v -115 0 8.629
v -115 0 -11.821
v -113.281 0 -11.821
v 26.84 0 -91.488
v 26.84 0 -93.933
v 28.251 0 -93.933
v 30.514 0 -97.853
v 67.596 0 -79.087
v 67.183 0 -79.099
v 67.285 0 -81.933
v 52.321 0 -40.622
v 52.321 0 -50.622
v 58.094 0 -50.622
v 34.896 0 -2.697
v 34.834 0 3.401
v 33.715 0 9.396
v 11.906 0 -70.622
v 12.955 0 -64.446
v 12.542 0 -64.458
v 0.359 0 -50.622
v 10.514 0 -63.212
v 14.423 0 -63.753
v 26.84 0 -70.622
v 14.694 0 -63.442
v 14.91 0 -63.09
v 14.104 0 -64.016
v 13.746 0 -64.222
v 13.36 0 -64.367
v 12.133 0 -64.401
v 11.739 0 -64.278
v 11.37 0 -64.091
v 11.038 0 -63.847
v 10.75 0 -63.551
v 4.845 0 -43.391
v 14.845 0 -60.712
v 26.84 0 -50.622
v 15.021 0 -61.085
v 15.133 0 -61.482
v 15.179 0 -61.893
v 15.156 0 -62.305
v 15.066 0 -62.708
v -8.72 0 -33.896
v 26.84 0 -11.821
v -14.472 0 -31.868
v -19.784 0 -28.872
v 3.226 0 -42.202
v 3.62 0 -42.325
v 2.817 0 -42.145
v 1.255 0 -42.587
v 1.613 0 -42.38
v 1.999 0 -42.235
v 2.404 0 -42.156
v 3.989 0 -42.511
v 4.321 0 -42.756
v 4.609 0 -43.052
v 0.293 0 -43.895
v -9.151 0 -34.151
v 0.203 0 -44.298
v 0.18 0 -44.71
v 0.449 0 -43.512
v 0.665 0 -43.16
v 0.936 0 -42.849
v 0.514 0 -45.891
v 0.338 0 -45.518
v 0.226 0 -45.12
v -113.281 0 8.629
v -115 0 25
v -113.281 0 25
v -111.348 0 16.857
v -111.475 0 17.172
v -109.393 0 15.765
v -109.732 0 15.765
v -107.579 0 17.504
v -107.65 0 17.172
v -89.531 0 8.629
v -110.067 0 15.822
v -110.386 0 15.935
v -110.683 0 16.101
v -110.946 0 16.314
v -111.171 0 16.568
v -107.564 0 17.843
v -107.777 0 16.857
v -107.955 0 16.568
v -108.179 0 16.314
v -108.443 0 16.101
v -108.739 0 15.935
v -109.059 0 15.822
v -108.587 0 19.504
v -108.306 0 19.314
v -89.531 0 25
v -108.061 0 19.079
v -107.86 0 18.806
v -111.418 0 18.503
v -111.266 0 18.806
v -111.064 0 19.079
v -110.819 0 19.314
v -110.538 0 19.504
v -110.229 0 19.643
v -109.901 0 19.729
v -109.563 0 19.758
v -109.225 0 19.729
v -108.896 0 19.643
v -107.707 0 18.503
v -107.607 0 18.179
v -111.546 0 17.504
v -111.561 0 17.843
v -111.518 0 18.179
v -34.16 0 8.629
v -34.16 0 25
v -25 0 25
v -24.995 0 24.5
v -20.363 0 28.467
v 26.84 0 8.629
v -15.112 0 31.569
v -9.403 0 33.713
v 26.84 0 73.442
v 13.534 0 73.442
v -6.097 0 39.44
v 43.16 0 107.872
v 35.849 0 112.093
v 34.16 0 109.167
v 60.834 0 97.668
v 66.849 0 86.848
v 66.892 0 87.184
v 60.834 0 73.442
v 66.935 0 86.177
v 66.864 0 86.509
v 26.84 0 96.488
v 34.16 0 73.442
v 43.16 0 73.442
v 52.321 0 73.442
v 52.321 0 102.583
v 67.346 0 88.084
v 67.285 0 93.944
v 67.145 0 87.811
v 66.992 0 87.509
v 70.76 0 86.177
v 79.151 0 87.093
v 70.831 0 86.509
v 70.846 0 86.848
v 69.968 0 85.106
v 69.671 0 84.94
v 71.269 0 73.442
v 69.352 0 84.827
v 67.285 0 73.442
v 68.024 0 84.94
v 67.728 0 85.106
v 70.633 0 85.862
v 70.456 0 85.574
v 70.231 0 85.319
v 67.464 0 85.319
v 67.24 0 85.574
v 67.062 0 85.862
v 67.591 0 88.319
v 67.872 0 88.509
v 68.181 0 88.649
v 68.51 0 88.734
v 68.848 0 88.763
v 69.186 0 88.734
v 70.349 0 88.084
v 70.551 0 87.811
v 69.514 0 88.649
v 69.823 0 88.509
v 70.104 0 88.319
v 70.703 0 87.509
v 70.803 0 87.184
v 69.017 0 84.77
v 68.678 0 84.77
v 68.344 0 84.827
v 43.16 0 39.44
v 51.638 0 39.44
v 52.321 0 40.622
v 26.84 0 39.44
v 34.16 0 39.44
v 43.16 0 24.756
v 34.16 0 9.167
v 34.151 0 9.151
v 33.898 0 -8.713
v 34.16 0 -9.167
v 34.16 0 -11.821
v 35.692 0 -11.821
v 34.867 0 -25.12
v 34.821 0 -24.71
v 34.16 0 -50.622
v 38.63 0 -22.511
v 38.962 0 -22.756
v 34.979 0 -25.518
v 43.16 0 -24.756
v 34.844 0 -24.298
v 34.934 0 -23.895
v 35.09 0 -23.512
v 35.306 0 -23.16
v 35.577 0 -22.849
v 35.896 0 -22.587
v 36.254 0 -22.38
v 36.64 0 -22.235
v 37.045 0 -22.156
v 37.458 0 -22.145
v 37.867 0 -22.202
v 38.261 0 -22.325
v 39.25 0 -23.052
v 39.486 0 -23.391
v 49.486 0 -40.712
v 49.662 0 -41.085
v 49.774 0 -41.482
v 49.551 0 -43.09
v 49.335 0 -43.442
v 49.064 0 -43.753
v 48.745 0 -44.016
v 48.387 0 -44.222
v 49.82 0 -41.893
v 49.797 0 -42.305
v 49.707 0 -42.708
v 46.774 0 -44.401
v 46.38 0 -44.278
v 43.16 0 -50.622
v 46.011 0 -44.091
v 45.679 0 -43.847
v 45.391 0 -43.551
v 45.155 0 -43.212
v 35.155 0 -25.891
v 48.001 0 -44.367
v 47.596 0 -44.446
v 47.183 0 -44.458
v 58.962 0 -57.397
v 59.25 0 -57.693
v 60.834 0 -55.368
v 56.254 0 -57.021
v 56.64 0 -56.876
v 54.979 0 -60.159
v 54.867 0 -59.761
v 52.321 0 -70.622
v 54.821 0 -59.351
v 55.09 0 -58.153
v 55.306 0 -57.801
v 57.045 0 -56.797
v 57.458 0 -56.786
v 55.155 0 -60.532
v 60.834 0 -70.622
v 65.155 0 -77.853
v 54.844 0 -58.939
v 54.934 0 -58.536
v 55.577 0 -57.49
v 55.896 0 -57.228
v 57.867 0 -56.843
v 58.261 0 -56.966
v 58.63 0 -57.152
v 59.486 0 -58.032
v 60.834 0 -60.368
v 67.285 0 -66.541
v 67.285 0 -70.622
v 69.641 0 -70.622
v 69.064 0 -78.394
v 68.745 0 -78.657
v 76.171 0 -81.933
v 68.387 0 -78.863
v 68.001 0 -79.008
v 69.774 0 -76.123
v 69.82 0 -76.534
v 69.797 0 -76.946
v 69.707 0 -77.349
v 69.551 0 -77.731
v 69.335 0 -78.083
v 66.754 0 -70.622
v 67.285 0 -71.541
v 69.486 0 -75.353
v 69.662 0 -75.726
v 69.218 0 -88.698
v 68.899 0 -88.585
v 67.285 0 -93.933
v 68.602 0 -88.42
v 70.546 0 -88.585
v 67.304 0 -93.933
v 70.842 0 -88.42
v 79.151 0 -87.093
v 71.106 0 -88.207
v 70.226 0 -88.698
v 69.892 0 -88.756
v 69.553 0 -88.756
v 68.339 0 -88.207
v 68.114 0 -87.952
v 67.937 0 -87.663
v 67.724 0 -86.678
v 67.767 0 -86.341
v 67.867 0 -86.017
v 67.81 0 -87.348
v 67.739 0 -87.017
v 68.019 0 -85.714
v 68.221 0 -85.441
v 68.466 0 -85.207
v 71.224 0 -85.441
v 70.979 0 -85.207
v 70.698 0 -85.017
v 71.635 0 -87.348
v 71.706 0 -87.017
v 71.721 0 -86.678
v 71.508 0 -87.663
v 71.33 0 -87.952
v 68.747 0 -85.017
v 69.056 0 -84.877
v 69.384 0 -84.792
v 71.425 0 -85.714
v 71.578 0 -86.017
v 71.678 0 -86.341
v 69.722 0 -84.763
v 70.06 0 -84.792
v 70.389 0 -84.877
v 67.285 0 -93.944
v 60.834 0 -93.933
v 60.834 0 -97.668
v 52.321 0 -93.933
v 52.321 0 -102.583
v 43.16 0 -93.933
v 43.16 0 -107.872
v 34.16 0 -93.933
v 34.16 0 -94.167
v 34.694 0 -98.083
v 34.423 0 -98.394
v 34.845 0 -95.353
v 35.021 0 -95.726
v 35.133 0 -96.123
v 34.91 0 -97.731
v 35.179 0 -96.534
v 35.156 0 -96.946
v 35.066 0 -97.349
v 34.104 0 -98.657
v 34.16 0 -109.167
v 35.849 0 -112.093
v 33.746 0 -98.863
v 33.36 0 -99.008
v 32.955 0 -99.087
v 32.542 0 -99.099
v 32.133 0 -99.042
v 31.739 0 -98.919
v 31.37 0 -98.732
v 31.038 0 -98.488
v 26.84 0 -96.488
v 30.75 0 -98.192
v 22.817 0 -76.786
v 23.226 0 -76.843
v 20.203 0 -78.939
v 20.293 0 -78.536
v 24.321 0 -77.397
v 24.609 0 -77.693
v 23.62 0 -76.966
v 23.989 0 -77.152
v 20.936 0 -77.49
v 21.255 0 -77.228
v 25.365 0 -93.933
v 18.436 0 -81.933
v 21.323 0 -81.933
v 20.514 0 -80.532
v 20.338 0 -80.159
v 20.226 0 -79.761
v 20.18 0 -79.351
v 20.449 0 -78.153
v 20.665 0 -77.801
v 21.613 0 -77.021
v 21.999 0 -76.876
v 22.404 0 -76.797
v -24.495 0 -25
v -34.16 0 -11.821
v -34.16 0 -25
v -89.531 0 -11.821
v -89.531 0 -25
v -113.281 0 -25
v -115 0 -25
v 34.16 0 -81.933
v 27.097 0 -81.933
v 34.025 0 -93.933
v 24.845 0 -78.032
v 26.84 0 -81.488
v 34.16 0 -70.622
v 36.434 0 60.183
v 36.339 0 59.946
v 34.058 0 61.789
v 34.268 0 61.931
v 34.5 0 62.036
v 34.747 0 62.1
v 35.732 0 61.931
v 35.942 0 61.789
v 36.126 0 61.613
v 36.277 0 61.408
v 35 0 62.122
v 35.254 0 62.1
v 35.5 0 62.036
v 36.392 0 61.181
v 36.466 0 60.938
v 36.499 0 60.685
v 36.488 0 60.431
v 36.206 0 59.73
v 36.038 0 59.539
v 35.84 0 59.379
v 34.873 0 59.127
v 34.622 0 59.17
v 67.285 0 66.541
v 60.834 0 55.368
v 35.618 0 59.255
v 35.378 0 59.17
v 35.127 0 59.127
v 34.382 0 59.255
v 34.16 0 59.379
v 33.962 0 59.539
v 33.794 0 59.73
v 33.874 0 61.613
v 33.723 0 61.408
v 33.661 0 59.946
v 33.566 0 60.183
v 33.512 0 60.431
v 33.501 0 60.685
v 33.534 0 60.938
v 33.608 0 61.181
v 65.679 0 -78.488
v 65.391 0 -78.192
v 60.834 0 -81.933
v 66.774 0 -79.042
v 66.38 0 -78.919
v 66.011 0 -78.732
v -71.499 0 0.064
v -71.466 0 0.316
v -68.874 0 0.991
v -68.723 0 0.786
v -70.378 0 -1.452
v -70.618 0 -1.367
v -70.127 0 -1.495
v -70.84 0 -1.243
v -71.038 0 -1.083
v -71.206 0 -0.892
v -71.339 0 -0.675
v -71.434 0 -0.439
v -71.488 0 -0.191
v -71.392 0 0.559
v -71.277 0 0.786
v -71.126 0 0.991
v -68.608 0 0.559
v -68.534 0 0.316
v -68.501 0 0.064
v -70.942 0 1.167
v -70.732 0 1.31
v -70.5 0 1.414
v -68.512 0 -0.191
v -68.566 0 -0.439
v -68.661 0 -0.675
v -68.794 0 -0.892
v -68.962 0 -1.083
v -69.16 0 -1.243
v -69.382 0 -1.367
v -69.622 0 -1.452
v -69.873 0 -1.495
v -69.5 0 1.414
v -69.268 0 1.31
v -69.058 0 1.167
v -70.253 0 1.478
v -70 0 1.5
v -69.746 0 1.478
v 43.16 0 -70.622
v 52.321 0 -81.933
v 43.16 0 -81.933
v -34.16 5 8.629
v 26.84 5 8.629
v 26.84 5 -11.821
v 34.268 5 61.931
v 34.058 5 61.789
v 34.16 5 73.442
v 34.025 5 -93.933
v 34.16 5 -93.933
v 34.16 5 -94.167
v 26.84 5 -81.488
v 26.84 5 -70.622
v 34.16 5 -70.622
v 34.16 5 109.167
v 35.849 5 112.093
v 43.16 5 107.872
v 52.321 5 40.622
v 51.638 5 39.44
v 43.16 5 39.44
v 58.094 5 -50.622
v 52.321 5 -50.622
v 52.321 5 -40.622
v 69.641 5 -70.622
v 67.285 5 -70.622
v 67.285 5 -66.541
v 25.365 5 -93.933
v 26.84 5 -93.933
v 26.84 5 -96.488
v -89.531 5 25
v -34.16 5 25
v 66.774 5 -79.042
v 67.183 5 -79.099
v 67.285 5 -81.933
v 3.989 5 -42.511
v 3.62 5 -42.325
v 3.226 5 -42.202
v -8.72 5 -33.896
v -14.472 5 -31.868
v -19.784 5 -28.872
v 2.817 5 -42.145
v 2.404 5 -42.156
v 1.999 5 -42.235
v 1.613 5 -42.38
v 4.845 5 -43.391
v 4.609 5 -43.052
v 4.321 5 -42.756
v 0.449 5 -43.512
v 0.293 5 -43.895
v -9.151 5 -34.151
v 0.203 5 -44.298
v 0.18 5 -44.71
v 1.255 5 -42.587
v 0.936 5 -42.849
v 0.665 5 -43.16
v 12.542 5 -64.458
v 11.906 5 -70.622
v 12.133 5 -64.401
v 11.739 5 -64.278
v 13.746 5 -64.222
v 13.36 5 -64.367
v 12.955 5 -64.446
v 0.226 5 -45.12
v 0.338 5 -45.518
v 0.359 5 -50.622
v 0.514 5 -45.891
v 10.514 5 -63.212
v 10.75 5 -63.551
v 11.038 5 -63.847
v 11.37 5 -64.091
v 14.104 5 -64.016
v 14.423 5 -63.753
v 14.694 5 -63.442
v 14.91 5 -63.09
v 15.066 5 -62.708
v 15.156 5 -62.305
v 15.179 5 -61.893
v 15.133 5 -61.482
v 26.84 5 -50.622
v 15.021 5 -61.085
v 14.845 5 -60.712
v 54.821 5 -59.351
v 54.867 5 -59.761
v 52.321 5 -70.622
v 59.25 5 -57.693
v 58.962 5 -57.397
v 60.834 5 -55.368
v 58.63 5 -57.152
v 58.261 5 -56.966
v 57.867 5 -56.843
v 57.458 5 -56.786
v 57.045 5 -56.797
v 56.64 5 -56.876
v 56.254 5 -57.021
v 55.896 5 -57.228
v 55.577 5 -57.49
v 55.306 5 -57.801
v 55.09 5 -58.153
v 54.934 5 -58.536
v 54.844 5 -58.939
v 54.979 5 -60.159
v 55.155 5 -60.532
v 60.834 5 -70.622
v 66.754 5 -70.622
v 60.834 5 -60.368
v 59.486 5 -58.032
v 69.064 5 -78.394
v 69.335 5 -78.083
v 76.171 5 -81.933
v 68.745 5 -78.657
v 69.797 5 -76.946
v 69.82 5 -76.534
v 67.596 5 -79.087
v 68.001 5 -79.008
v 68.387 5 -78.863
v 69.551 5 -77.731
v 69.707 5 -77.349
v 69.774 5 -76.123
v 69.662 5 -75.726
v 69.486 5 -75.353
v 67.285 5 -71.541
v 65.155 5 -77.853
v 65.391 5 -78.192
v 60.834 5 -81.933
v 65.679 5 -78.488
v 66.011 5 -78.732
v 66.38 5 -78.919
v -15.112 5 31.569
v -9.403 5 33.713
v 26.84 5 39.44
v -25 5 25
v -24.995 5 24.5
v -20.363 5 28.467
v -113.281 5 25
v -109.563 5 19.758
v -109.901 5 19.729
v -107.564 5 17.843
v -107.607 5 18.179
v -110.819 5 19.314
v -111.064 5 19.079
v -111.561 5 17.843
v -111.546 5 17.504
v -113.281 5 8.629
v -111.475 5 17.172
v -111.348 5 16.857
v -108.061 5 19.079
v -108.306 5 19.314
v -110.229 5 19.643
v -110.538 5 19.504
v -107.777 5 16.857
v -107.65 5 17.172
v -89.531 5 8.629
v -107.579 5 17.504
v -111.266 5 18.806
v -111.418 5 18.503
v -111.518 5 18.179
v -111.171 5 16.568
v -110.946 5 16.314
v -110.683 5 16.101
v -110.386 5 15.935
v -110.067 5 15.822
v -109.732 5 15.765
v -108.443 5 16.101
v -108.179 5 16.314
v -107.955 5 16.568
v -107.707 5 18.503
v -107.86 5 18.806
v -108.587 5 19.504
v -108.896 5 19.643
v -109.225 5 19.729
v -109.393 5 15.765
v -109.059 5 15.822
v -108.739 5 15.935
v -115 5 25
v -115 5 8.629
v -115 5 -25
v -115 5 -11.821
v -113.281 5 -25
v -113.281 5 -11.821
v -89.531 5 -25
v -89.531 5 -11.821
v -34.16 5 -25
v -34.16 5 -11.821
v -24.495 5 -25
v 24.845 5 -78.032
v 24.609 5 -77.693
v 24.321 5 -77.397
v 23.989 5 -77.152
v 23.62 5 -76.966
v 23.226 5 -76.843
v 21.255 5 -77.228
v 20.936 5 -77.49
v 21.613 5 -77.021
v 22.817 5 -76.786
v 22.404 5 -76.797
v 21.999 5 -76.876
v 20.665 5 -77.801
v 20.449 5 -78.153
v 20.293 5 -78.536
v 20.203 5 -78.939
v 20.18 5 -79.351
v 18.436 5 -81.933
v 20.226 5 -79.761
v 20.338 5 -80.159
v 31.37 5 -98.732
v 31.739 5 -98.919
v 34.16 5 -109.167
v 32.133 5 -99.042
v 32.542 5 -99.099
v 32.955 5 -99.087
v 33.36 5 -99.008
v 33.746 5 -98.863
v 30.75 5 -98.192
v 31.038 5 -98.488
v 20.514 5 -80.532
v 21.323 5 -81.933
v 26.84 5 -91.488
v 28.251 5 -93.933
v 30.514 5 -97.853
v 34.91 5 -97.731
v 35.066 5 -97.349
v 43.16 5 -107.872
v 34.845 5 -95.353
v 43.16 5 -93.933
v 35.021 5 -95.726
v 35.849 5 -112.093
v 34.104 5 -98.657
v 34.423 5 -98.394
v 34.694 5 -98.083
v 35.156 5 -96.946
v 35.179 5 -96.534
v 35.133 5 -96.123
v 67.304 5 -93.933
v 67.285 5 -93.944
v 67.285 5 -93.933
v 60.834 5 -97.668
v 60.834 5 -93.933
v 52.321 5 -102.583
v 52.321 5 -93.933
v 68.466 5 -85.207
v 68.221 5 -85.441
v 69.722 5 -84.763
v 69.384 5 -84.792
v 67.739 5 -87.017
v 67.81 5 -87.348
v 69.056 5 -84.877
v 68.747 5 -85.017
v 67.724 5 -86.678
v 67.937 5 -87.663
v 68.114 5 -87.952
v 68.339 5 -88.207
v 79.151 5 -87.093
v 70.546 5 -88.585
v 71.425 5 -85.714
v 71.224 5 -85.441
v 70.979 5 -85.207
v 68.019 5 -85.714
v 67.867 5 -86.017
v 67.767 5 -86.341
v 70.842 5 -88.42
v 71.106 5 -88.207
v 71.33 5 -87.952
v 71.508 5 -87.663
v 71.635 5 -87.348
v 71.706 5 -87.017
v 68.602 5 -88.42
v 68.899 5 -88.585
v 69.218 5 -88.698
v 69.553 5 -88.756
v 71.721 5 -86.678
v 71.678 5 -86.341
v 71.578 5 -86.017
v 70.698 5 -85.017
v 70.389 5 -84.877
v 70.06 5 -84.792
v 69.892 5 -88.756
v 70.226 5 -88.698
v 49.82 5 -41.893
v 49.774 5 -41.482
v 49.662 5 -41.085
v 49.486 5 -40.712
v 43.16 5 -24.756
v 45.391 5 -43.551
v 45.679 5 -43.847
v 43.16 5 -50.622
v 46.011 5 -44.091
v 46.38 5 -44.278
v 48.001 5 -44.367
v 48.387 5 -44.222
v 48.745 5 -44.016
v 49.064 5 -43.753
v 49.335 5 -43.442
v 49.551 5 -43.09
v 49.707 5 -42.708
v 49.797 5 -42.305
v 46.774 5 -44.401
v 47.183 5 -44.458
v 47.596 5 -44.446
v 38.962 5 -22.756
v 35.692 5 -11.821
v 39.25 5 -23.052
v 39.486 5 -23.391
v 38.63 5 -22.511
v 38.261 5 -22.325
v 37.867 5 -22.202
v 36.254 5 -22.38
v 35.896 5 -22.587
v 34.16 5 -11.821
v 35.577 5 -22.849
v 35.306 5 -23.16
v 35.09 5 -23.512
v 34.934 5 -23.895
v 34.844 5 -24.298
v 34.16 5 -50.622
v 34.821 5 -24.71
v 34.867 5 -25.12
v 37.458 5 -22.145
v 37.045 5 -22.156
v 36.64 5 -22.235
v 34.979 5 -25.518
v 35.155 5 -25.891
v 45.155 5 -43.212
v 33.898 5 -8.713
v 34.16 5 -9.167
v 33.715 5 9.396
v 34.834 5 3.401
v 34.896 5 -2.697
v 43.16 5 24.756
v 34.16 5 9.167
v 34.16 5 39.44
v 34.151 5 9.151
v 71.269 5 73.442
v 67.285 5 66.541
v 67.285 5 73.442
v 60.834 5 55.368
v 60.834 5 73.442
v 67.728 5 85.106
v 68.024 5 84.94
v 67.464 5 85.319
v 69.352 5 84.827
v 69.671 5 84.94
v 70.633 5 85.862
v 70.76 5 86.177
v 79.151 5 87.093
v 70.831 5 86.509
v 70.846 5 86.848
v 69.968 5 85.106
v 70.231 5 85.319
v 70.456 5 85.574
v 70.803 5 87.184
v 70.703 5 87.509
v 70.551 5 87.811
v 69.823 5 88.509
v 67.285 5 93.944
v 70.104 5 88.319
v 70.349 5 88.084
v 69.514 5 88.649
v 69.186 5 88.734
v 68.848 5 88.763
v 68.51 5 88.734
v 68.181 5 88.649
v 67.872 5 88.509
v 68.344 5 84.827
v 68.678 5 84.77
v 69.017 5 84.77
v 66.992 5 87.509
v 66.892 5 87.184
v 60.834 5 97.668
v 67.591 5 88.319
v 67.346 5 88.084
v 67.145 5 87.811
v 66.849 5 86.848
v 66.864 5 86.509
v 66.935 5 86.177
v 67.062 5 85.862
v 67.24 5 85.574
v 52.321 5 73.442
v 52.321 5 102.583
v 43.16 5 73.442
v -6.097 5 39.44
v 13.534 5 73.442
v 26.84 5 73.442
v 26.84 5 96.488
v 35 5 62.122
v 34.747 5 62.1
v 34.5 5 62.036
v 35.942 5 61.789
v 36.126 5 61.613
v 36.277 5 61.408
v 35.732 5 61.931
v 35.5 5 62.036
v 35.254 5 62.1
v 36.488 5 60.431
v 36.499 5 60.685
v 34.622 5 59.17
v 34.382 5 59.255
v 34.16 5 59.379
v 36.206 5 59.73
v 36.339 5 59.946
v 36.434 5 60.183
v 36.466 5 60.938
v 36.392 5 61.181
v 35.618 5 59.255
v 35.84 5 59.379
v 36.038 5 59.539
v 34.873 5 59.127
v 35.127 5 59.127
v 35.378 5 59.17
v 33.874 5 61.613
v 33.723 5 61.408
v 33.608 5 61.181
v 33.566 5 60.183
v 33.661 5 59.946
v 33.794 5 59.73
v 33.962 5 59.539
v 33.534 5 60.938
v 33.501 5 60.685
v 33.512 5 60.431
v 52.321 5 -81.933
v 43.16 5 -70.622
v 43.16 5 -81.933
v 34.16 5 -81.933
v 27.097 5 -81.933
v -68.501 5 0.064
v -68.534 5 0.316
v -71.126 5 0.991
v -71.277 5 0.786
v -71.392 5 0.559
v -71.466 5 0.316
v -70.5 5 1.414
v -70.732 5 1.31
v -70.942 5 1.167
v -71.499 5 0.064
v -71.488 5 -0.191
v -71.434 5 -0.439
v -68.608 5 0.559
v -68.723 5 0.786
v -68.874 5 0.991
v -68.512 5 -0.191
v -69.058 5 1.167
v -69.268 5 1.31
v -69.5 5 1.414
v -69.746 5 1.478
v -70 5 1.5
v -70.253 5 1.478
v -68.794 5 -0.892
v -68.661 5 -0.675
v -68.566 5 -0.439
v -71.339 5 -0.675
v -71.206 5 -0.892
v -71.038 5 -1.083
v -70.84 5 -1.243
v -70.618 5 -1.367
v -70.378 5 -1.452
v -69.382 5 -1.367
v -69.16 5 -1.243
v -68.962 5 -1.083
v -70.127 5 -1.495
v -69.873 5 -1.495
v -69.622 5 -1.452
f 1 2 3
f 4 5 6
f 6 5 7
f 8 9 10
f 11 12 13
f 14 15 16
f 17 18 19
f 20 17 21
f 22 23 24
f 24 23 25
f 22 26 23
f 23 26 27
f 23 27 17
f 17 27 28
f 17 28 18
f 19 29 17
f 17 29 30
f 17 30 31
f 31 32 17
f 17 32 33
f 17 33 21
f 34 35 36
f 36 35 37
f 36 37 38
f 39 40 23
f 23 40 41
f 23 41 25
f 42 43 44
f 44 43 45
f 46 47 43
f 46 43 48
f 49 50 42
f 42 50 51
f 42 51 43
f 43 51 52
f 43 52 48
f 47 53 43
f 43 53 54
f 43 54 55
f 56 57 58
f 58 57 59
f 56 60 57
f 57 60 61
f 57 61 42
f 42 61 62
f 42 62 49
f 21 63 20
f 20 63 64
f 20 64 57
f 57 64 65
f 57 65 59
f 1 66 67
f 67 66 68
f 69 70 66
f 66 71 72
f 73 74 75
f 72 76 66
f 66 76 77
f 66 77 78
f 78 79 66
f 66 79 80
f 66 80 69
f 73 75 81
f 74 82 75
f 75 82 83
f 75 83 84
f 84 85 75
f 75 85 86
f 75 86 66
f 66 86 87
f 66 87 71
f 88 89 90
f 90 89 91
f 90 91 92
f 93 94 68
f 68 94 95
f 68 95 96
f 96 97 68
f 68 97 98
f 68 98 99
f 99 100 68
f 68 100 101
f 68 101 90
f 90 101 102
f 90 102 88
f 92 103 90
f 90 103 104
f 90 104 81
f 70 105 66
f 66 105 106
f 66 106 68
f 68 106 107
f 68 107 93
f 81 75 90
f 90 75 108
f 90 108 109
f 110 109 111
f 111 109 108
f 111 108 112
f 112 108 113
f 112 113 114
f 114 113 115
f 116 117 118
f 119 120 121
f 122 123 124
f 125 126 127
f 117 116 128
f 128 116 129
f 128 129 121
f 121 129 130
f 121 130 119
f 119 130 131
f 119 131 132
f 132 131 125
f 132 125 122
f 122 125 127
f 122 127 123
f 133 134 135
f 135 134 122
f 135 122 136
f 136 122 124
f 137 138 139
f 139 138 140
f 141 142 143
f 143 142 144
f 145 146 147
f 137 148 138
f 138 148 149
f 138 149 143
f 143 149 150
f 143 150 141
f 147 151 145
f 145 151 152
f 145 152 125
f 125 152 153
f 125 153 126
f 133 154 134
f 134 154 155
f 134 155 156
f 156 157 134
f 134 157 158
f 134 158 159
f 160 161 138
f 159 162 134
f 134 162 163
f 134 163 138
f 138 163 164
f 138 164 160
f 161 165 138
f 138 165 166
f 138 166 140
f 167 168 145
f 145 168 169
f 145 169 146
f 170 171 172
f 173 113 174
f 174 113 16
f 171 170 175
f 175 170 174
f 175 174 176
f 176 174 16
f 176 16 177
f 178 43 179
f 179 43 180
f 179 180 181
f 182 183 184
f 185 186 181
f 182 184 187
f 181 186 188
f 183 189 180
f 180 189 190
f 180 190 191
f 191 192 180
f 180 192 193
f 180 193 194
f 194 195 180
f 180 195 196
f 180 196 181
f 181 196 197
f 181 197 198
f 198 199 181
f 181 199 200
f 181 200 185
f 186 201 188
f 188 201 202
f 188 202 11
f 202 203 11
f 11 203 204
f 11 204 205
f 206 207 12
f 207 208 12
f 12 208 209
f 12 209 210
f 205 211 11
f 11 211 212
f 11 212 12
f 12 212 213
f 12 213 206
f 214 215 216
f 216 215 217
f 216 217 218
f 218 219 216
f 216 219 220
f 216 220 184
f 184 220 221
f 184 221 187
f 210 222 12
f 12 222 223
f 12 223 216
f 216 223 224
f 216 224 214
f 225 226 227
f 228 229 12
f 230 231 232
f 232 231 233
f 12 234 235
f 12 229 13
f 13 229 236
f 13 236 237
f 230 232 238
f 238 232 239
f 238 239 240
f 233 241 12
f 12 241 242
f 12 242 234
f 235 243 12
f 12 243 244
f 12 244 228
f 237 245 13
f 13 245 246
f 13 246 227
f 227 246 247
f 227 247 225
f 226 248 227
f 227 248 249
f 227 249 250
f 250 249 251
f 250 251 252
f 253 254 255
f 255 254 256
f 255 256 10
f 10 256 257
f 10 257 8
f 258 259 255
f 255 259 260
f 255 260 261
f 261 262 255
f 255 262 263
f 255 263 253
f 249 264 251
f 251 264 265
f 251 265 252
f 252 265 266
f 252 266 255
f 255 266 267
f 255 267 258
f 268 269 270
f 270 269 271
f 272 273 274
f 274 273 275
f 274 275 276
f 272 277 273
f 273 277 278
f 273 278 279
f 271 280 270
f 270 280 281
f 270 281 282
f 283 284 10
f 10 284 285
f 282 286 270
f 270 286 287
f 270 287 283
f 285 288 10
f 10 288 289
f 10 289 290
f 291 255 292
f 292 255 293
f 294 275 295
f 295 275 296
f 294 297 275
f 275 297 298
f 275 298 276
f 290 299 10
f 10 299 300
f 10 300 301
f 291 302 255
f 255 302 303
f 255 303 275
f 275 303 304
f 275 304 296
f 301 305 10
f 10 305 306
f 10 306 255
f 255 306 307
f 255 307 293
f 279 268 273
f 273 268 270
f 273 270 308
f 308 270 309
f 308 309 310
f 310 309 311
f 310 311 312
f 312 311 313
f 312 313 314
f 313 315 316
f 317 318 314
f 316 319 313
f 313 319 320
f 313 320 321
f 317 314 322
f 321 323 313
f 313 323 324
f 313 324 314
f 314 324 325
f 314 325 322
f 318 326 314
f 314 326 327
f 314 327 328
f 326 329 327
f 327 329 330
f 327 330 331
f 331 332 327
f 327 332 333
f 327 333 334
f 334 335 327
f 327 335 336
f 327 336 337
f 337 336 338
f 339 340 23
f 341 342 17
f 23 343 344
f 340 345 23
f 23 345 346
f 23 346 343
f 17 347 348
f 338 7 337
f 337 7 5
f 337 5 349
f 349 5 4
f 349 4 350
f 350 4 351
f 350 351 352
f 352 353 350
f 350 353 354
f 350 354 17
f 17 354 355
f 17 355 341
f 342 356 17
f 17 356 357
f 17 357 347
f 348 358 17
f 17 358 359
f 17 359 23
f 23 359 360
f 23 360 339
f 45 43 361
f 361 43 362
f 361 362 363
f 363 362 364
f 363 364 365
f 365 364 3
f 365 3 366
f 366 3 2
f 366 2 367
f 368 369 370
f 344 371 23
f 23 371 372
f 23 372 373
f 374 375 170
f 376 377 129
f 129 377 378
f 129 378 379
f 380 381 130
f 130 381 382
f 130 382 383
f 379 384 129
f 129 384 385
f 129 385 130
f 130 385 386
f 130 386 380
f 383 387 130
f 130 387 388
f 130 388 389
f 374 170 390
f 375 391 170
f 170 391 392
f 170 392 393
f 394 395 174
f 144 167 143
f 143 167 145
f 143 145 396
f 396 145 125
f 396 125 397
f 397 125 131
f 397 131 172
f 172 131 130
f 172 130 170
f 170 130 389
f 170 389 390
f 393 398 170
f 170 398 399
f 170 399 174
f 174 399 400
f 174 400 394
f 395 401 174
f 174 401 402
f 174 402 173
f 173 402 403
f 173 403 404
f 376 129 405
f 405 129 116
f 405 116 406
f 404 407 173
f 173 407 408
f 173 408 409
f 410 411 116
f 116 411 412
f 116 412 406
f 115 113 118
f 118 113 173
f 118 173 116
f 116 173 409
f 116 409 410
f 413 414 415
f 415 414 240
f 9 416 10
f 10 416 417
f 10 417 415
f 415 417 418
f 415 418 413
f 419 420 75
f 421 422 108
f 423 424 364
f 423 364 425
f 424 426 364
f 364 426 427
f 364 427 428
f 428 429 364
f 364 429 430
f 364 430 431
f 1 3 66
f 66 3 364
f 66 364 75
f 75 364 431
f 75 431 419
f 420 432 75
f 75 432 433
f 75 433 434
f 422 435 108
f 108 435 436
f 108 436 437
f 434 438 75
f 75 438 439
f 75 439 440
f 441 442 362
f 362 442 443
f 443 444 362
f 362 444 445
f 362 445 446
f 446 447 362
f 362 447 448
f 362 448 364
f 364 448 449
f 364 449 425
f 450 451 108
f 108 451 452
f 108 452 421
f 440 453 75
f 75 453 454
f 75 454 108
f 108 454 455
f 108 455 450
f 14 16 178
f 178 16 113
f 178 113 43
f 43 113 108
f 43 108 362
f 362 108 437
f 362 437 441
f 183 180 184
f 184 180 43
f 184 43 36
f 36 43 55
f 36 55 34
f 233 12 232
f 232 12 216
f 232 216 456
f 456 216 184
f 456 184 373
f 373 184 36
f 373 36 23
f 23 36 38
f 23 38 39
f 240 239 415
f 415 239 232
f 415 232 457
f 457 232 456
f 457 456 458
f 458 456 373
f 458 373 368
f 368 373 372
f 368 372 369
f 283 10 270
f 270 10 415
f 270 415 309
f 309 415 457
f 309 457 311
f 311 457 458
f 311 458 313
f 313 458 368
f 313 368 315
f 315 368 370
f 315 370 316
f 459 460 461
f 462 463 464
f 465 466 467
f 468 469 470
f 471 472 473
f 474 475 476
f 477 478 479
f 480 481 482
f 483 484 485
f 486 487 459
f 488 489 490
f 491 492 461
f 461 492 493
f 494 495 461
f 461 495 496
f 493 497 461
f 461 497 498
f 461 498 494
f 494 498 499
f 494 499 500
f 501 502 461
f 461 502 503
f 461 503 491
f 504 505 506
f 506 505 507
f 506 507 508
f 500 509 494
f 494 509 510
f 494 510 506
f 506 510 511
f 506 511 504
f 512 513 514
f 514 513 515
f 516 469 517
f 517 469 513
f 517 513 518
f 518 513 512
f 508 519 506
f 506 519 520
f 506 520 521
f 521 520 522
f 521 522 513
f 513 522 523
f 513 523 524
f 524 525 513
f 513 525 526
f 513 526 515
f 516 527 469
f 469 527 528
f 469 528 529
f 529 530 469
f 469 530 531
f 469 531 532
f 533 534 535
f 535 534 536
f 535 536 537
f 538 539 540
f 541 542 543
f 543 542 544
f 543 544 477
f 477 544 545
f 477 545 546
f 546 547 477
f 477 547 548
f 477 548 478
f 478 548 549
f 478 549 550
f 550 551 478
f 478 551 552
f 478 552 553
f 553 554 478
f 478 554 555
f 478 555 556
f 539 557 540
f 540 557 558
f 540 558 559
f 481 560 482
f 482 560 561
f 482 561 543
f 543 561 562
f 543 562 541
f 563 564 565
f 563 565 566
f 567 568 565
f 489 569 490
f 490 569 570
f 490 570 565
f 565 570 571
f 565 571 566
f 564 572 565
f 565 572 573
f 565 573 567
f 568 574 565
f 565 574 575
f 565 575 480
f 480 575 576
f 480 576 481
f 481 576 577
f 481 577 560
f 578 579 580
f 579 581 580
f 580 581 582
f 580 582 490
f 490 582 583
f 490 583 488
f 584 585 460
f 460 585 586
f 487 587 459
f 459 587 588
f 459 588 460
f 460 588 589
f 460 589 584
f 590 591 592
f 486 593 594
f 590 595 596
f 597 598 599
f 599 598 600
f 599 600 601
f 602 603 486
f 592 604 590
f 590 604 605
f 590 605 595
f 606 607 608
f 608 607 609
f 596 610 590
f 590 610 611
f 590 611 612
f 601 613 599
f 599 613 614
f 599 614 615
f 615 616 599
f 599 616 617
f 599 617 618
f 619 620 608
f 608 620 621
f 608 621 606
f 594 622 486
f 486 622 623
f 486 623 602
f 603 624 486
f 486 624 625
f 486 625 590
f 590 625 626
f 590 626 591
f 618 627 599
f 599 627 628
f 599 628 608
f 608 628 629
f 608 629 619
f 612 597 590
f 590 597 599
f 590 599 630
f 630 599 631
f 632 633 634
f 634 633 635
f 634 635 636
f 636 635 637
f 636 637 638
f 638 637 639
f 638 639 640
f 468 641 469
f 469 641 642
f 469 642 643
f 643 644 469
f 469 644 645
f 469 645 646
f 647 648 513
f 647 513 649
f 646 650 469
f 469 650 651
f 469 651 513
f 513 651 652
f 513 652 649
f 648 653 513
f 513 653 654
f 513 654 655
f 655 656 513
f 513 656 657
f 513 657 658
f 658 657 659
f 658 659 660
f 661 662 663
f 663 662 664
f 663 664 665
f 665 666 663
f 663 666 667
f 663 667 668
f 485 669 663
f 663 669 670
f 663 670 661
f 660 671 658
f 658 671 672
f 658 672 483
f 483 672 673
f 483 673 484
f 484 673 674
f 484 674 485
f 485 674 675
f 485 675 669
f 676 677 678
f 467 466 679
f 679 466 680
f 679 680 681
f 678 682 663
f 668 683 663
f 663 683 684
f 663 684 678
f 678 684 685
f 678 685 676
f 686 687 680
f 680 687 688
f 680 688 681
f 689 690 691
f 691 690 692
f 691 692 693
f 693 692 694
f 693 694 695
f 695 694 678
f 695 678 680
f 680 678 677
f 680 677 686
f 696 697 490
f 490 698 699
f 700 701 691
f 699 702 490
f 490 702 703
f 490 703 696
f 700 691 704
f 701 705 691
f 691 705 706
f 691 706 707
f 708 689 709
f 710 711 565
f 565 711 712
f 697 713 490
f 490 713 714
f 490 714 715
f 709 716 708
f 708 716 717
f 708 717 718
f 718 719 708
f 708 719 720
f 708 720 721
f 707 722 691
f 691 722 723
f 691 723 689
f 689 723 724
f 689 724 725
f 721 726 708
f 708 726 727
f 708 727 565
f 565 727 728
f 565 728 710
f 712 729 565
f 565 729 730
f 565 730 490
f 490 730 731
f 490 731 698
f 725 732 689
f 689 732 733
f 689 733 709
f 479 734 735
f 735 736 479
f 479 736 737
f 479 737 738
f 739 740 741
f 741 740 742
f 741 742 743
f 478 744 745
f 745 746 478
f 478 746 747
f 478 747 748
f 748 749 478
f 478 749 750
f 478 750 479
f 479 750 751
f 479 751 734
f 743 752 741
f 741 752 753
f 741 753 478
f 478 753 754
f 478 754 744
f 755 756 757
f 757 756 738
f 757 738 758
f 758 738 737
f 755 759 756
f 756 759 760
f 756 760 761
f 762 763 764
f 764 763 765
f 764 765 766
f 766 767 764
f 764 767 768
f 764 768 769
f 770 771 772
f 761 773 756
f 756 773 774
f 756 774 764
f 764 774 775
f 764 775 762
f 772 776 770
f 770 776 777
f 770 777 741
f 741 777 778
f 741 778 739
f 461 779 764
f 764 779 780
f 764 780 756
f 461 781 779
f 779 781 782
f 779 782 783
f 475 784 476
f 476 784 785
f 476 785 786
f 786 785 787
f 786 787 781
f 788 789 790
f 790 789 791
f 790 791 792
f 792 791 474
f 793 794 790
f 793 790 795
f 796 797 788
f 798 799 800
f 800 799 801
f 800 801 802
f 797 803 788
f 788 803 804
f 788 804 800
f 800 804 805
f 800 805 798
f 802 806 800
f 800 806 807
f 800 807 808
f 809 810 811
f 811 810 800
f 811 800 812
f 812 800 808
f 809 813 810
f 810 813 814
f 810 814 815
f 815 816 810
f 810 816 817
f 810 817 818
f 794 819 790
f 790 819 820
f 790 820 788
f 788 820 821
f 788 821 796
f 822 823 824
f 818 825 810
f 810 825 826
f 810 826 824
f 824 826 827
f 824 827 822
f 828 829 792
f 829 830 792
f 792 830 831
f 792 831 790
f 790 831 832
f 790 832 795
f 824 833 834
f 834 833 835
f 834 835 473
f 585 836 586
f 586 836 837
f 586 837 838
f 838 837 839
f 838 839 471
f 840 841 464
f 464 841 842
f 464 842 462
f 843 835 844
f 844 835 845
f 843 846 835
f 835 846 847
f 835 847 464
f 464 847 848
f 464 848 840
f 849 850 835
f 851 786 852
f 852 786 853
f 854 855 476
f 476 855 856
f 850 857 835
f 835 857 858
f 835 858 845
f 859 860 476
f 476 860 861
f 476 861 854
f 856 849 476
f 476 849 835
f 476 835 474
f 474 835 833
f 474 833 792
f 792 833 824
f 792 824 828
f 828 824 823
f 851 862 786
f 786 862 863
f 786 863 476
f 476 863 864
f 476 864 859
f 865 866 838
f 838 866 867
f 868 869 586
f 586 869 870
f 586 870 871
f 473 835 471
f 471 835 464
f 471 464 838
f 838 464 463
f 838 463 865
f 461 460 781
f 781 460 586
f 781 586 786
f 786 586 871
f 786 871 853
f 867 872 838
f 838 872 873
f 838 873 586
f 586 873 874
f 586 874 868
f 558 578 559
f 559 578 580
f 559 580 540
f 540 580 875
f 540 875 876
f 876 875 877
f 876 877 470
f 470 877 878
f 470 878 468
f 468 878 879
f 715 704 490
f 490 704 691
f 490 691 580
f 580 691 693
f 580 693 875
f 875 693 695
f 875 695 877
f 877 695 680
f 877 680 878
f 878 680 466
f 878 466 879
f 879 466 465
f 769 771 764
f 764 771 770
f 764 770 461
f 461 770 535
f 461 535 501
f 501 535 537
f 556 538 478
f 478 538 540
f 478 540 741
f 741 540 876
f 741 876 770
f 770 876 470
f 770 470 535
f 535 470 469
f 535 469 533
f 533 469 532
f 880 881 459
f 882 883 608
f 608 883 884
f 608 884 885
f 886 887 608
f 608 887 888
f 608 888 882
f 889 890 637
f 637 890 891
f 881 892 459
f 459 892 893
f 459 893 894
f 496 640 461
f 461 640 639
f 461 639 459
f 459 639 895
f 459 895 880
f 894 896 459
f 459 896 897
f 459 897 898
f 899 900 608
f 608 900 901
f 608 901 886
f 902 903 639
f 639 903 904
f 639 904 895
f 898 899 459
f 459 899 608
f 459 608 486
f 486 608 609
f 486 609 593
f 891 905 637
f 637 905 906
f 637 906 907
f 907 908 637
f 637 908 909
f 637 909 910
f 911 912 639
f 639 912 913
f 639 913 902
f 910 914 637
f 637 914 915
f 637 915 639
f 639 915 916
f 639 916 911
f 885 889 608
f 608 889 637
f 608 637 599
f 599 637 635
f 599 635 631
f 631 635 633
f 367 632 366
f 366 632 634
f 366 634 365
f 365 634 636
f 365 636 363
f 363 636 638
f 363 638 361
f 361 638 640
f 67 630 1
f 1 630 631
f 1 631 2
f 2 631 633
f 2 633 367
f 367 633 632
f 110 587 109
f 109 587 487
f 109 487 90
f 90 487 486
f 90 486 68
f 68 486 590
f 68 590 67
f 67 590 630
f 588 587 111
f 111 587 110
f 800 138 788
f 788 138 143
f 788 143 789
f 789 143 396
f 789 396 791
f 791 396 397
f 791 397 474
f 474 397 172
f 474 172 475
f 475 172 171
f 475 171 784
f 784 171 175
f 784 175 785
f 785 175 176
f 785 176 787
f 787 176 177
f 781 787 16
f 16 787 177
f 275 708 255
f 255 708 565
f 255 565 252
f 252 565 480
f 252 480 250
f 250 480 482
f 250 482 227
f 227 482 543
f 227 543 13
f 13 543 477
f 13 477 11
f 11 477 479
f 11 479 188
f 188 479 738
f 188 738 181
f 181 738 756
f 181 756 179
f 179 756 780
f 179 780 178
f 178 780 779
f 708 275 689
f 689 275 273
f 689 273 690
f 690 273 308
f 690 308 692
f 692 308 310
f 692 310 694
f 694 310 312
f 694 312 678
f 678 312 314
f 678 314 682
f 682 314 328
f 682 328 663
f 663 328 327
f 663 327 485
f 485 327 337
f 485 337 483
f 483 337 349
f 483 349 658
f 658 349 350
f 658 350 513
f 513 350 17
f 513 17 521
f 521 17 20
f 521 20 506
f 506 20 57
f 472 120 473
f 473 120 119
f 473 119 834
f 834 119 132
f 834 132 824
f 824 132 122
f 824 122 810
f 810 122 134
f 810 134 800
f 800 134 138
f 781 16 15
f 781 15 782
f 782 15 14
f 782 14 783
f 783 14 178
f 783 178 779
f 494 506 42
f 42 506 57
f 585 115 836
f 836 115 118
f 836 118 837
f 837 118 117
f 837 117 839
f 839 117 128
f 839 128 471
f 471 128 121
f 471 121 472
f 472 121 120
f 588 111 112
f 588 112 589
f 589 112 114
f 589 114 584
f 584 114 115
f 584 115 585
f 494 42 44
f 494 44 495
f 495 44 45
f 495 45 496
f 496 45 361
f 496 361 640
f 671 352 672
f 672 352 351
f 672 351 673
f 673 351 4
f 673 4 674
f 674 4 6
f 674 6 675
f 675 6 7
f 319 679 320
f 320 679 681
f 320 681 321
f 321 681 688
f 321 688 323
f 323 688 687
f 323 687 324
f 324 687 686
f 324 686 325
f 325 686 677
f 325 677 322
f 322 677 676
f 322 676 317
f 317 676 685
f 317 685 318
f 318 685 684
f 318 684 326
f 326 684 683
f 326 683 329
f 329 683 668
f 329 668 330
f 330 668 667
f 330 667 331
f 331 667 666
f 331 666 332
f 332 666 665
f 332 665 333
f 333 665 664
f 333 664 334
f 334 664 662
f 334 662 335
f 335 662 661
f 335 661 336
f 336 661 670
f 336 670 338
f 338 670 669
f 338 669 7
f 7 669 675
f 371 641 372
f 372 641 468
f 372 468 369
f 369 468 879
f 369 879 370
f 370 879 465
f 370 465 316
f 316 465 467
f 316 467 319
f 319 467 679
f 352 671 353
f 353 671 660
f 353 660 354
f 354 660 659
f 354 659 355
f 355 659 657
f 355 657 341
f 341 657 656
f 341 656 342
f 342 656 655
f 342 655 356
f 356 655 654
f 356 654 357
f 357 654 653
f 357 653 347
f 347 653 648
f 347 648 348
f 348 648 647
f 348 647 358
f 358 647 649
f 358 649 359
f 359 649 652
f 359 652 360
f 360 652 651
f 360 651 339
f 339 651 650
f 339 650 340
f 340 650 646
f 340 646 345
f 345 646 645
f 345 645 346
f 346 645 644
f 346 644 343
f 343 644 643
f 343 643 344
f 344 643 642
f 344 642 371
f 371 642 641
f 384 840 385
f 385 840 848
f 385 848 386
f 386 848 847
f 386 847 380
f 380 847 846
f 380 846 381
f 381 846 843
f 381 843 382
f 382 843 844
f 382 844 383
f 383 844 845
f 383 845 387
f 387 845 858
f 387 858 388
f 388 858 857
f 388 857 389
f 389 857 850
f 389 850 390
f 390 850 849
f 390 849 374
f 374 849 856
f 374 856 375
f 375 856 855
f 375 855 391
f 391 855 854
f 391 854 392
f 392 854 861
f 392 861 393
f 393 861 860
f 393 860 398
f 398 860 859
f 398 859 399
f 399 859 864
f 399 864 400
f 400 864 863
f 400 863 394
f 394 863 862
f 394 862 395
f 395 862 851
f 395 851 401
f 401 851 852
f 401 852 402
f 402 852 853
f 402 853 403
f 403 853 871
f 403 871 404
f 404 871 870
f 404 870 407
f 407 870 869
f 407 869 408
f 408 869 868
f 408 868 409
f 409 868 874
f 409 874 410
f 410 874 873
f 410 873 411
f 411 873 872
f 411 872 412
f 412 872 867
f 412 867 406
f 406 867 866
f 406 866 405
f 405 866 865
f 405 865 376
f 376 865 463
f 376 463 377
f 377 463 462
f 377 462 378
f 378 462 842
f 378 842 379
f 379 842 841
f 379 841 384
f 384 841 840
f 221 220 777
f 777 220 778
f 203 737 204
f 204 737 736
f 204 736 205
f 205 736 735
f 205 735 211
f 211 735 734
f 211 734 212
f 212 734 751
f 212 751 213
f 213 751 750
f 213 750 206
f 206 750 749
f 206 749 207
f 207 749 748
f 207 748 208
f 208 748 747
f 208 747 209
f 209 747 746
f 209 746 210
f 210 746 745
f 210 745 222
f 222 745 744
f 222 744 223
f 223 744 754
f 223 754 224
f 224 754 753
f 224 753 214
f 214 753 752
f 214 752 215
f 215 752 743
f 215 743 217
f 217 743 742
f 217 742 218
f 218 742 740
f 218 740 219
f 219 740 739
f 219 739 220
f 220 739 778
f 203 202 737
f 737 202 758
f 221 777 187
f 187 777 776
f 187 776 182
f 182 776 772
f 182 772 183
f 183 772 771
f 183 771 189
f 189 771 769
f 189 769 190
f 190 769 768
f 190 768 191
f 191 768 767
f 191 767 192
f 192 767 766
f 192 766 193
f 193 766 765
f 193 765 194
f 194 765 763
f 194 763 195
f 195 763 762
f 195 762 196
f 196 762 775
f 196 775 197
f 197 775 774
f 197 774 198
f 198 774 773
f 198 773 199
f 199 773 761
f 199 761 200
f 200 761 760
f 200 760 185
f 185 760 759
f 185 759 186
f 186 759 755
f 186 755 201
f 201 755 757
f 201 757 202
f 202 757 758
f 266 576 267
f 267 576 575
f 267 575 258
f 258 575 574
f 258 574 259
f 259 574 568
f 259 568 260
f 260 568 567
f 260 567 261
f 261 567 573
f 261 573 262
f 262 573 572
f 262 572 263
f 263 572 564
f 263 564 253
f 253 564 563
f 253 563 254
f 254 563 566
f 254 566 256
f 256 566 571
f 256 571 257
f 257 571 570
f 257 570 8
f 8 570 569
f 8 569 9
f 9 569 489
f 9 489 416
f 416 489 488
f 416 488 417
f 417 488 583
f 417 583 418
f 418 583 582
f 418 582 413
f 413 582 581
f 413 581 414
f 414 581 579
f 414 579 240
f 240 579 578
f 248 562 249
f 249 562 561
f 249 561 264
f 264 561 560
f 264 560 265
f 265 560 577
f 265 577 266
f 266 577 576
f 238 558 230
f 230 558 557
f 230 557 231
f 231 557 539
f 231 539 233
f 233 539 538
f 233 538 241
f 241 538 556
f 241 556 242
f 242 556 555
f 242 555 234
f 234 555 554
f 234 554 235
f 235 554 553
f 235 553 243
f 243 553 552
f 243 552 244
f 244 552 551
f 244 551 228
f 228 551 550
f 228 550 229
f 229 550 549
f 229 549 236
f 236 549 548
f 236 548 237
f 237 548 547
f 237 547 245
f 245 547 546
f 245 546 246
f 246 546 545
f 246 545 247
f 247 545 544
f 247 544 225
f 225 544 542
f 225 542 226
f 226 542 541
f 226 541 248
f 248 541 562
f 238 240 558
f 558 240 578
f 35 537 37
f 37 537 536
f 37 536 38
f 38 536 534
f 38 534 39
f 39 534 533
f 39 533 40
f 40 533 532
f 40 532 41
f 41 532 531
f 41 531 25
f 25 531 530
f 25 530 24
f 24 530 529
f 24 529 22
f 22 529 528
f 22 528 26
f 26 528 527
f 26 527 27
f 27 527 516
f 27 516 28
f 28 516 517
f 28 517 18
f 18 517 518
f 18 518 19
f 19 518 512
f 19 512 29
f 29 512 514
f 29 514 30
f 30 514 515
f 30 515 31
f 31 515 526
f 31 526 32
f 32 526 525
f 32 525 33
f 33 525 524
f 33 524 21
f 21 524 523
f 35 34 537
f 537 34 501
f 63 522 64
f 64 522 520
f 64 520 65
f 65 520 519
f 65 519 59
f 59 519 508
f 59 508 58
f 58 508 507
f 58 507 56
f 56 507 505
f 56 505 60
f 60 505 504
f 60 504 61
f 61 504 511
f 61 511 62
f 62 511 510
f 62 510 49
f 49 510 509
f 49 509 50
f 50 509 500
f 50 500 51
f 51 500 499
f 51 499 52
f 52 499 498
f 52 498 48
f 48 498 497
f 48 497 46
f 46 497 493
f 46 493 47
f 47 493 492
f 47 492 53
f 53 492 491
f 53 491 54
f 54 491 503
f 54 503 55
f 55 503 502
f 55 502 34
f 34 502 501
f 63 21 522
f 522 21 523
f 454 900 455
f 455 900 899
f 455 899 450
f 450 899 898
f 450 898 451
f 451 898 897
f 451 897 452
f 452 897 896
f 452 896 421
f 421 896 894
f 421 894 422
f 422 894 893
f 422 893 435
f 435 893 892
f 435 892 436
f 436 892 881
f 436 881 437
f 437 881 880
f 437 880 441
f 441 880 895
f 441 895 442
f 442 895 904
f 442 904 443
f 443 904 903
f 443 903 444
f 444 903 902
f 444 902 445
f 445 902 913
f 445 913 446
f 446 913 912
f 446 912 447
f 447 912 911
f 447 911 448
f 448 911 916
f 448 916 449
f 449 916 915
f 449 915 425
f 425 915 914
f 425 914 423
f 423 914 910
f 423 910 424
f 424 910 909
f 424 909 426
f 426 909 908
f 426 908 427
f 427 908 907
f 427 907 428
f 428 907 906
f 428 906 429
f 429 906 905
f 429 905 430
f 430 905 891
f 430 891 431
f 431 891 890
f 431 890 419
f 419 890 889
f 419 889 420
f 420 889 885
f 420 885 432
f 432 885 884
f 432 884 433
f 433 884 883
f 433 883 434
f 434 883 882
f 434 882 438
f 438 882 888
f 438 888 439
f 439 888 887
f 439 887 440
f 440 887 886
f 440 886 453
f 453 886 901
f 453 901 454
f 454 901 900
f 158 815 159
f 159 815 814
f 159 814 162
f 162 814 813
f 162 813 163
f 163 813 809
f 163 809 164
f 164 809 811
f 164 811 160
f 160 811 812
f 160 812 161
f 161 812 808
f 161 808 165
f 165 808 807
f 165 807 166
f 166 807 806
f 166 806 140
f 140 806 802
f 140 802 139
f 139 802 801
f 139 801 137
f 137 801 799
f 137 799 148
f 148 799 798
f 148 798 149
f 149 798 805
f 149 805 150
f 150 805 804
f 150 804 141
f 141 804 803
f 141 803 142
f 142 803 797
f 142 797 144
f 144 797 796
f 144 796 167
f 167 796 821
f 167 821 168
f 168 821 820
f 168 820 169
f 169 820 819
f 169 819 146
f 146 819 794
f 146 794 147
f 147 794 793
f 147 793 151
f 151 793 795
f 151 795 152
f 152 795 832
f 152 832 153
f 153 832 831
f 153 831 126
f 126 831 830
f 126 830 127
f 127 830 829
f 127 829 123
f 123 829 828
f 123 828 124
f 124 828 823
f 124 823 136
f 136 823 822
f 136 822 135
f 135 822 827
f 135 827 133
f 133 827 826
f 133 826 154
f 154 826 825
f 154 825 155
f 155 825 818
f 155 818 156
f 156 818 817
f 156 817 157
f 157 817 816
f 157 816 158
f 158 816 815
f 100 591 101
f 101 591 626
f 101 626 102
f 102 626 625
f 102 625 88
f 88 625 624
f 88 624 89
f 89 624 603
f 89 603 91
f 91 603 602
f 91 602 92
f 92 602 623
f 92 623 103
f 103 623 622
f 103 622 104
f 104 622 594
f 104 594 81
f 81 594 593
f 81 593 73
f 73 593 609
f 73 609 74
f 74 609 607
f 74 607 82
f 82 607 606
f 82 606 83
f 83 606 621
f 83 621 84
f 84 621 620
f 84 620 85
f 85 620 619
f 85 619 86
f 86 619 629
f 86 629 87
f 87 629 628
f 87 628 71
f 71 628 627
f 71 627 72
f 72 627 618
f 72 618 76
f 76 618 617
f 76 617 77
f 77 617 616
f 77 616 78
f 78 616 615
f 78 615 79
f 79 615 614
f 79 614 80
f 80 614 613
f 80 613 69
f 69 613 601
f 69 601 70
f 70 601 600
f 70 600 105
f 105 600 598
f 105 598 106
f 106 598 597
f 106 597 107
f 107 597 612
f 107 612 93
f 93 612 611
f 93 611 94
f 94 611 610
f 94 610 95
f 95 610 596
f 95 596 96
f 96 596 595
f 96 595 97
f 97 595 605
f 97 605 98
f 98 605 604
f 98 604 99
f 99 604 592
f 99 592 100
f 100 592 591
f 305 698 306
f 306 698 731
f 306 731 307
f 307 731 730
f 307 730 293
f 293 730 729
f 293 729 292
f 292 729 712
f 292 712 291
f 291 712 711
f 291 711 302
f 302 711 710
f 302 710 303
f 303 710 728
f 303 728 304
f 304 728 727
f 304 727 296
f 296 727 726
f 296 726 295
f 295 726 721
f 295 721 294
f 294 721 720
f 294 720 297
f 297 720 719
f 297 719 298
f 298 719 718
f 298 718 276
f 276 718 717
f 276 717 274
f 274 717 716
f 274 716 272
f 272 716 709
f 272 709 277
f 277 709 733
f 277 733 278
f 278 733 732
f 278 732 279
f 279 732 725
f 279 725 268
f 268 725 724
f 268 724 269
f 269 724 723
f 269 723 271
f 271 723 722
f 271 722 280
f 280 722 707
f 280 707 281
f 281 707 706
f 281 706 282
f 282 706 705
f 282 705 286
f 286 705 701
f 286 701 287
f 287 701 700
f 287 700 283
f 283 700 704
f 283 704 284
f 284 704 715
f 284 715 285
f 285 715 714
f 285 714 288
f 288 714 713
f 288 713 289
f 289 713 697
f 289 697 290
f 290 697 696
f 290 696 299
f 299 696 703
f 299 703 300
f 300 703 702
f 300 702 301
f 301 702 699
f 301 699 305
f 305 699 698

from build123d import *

# Parameters (mm, degrees)
ESQUISSE3_R             = 35
BOSS_EXTRU_3_DEPTH      = 5
ESQUISSE5_R             = 1.5
ENL_V_MAT_EXTRU_1_DEPTH = 161.669919512
ESQUISSE7_R             = 2
ENL_V_MAT_EXTRU_2_DEPTH = 10


with BuildPart() as part:
    # Esquisse3 → Boss.-Extru.3 (new body)
    with BuildSketch(Plane(origin=(0, 0, 0), x_dir=(1, 0, 0), z_dir=(0, 1, 0))):
        with BuildLine():
            Line((-115, -25), (-25, -25))
            Line((-25, -25), (-24.99494949, -24.500051021))
            ThreePointArc((-24.99494949, -24.500051021), (-34.998214236, 0.353553761), (-24.494897428, 25))
            Line((-24.494897428, 25), (-25, 25))
            Line((-25, 25), (-115, 25))
            Line((-115, 25), (-115, -25))
        make_face()
        Circle(ESQUISSE3_R)
        Polygon((-9.403186381, -33.713203436), (35.849364905, -112.092921435), (79.150635095, -87.092921435), (34.150635095, -9.150635095), align=None)
        with BuildLine():
            Line((-24.494897428, 25), (-24.99494949, -24.500051021))
            ThreePointArc((-24.99494949, -24.500051021), (-17.805293657, -30.132565736), (-9.403186381, -33.713203436))
            Line((-9.403186381, -33.713203436), (33.715141323, -9.396235714))
            ThreePointArc((33.715141323, -9.396235714), (34.677297662, -4.741837919), (35, 0))
            ThreePointArc((35, 0), (34.72342821, 4.391302011), (33.898083809, 8.713203436))
            Line((33.898083809, 8.713203436), (-8.720191833, 33.896286735))
            ThreePointArc((-8.720191833, 33.896286735), (-17.19292058, 30.486119496), (-24.494897428, 25))
        make_face()
        Circle(ESQUISSE3_R)
        Polygon((33.898083809, 8.713203436), (79.150635095, 87.092921435), (35.849364905, 112.092921435), (-9.150635095, 34.150635095), align=None)
        with BuildLine():
            ThreePointArc((33.898083809, 8.713203436), (17.805293657, 30.132565736), (-8.720191833, 33.896286735))
            Line((-8.720191833, 33.896286735), (33.898083809, 8.713203436))
        make_face()
    extrude(amount=BOSS_EXTRU_3_DEPTH)

    # Esquisse5 → Enlèv. mat.-Extru.1 (cut, through all)
    with BuildSketch(Plane(origin=(0, 5, 0), x_dir=(1, 0, 0), z_dir=(0, 1, 0))):
        with BuildLine():
            Line((30.514428415, 97.852540378), (20.514428415, 80.532032303))
            ThreePointArc((20.514428415, 80.532032303), (21.429491924, 77.116968793), (24.844555434, 78.032032303))
            Line((24.844555434, 78.032032303), (34.844555434, 95.352540378))
            ThreePointArc((34.844555434, 95.352540378), (33.929491924, 98.767603888), (30.514428415, 97.852540378))
        make_face()
        with BuildLine():
            ThreePointArc((10.514428415, 63.211524227), (13.929491924, 64.126587737), (14.844555434, 60.711524227))
            Line((14.844555434, 60.711524227), (4.844555434, 43.391016151))
            ThreePointArc((4.844555434, 43.391016151), (1.429491924, 42.475952642), (0.514428415, 45.891016151))
            Line((0.514428415, 45.891016151), (10.514428415, 63.211524227))
        make_face()
        with BuildLine():
            ThreePointArc((65.155444566, 77.852540378), (68.570508076, 78.767603888), (69.485571585, 75.352540378))
            Line((69.485571585, 75.352540378), (59.485571585, 58.032032303))
            ThreePointArc((59.485571585, 58.032032303), (56.070508076, 57.116968793), (55.155444566, 60.532032303))
            Line((55.155444566, 60.532032303), (65.155444566, 77.852540378))
        make_face()
        with BuildLine():
            Line((45.155444566, 43.211524227), (35.155444566, 25.891016151))
            ThreePointArc((35.155444566, 25.891016151), (36.070508076, 22.475952642), (39.485571585, 23.391016151))
            Line((39.485571585, 23.391016151), (49.485571585, 40.711524227))
            ThreePointArc((49.485571585, 40.711524227), (48.570508076, 44.126587737), (45.155444566, 43.211524227))
        make_face()
        with Locations(Location((35, -60.621778265, 0), (0, 0, 270))):
            Circle(ESQUISSE5_R)
        with Locations(Location((-70, 0, 0), (0, 0, 270))):
            Circle(ESQUISSE5_R)
    extrude(amount=-ENL_V_MAT_EXTRU_1_DEPTH, mode=Mode.SUBTRACT)

    # Esquisse7 → Enlèv. mat.-Extru.2 (cut)
    with BuildSketch(Plane(origin=(0, 5, 0), x_dir=(1, 0, 0), z_dir=(0, 1, 0))):
        with Locations(Location((69.722431864, 86.762794416, 0), (0, 0, 270))):
            Circle(ESQUISSE7_R)
        with Locations(Location((-109.562568341, -17.757653858, 0), (0, 0, 270))):
            Circle(ESQUISSE7_R)
        with Locations(Location((68.847568546, -86.762794416, 0), (0, 0, 270))):
            Circle(ESQUISSE7_R)
    extrude(amount=-ENL_V_MAT_EXTRU_2_DEPTH, mode=Mode.SUBTRACT)


solid = part.part
